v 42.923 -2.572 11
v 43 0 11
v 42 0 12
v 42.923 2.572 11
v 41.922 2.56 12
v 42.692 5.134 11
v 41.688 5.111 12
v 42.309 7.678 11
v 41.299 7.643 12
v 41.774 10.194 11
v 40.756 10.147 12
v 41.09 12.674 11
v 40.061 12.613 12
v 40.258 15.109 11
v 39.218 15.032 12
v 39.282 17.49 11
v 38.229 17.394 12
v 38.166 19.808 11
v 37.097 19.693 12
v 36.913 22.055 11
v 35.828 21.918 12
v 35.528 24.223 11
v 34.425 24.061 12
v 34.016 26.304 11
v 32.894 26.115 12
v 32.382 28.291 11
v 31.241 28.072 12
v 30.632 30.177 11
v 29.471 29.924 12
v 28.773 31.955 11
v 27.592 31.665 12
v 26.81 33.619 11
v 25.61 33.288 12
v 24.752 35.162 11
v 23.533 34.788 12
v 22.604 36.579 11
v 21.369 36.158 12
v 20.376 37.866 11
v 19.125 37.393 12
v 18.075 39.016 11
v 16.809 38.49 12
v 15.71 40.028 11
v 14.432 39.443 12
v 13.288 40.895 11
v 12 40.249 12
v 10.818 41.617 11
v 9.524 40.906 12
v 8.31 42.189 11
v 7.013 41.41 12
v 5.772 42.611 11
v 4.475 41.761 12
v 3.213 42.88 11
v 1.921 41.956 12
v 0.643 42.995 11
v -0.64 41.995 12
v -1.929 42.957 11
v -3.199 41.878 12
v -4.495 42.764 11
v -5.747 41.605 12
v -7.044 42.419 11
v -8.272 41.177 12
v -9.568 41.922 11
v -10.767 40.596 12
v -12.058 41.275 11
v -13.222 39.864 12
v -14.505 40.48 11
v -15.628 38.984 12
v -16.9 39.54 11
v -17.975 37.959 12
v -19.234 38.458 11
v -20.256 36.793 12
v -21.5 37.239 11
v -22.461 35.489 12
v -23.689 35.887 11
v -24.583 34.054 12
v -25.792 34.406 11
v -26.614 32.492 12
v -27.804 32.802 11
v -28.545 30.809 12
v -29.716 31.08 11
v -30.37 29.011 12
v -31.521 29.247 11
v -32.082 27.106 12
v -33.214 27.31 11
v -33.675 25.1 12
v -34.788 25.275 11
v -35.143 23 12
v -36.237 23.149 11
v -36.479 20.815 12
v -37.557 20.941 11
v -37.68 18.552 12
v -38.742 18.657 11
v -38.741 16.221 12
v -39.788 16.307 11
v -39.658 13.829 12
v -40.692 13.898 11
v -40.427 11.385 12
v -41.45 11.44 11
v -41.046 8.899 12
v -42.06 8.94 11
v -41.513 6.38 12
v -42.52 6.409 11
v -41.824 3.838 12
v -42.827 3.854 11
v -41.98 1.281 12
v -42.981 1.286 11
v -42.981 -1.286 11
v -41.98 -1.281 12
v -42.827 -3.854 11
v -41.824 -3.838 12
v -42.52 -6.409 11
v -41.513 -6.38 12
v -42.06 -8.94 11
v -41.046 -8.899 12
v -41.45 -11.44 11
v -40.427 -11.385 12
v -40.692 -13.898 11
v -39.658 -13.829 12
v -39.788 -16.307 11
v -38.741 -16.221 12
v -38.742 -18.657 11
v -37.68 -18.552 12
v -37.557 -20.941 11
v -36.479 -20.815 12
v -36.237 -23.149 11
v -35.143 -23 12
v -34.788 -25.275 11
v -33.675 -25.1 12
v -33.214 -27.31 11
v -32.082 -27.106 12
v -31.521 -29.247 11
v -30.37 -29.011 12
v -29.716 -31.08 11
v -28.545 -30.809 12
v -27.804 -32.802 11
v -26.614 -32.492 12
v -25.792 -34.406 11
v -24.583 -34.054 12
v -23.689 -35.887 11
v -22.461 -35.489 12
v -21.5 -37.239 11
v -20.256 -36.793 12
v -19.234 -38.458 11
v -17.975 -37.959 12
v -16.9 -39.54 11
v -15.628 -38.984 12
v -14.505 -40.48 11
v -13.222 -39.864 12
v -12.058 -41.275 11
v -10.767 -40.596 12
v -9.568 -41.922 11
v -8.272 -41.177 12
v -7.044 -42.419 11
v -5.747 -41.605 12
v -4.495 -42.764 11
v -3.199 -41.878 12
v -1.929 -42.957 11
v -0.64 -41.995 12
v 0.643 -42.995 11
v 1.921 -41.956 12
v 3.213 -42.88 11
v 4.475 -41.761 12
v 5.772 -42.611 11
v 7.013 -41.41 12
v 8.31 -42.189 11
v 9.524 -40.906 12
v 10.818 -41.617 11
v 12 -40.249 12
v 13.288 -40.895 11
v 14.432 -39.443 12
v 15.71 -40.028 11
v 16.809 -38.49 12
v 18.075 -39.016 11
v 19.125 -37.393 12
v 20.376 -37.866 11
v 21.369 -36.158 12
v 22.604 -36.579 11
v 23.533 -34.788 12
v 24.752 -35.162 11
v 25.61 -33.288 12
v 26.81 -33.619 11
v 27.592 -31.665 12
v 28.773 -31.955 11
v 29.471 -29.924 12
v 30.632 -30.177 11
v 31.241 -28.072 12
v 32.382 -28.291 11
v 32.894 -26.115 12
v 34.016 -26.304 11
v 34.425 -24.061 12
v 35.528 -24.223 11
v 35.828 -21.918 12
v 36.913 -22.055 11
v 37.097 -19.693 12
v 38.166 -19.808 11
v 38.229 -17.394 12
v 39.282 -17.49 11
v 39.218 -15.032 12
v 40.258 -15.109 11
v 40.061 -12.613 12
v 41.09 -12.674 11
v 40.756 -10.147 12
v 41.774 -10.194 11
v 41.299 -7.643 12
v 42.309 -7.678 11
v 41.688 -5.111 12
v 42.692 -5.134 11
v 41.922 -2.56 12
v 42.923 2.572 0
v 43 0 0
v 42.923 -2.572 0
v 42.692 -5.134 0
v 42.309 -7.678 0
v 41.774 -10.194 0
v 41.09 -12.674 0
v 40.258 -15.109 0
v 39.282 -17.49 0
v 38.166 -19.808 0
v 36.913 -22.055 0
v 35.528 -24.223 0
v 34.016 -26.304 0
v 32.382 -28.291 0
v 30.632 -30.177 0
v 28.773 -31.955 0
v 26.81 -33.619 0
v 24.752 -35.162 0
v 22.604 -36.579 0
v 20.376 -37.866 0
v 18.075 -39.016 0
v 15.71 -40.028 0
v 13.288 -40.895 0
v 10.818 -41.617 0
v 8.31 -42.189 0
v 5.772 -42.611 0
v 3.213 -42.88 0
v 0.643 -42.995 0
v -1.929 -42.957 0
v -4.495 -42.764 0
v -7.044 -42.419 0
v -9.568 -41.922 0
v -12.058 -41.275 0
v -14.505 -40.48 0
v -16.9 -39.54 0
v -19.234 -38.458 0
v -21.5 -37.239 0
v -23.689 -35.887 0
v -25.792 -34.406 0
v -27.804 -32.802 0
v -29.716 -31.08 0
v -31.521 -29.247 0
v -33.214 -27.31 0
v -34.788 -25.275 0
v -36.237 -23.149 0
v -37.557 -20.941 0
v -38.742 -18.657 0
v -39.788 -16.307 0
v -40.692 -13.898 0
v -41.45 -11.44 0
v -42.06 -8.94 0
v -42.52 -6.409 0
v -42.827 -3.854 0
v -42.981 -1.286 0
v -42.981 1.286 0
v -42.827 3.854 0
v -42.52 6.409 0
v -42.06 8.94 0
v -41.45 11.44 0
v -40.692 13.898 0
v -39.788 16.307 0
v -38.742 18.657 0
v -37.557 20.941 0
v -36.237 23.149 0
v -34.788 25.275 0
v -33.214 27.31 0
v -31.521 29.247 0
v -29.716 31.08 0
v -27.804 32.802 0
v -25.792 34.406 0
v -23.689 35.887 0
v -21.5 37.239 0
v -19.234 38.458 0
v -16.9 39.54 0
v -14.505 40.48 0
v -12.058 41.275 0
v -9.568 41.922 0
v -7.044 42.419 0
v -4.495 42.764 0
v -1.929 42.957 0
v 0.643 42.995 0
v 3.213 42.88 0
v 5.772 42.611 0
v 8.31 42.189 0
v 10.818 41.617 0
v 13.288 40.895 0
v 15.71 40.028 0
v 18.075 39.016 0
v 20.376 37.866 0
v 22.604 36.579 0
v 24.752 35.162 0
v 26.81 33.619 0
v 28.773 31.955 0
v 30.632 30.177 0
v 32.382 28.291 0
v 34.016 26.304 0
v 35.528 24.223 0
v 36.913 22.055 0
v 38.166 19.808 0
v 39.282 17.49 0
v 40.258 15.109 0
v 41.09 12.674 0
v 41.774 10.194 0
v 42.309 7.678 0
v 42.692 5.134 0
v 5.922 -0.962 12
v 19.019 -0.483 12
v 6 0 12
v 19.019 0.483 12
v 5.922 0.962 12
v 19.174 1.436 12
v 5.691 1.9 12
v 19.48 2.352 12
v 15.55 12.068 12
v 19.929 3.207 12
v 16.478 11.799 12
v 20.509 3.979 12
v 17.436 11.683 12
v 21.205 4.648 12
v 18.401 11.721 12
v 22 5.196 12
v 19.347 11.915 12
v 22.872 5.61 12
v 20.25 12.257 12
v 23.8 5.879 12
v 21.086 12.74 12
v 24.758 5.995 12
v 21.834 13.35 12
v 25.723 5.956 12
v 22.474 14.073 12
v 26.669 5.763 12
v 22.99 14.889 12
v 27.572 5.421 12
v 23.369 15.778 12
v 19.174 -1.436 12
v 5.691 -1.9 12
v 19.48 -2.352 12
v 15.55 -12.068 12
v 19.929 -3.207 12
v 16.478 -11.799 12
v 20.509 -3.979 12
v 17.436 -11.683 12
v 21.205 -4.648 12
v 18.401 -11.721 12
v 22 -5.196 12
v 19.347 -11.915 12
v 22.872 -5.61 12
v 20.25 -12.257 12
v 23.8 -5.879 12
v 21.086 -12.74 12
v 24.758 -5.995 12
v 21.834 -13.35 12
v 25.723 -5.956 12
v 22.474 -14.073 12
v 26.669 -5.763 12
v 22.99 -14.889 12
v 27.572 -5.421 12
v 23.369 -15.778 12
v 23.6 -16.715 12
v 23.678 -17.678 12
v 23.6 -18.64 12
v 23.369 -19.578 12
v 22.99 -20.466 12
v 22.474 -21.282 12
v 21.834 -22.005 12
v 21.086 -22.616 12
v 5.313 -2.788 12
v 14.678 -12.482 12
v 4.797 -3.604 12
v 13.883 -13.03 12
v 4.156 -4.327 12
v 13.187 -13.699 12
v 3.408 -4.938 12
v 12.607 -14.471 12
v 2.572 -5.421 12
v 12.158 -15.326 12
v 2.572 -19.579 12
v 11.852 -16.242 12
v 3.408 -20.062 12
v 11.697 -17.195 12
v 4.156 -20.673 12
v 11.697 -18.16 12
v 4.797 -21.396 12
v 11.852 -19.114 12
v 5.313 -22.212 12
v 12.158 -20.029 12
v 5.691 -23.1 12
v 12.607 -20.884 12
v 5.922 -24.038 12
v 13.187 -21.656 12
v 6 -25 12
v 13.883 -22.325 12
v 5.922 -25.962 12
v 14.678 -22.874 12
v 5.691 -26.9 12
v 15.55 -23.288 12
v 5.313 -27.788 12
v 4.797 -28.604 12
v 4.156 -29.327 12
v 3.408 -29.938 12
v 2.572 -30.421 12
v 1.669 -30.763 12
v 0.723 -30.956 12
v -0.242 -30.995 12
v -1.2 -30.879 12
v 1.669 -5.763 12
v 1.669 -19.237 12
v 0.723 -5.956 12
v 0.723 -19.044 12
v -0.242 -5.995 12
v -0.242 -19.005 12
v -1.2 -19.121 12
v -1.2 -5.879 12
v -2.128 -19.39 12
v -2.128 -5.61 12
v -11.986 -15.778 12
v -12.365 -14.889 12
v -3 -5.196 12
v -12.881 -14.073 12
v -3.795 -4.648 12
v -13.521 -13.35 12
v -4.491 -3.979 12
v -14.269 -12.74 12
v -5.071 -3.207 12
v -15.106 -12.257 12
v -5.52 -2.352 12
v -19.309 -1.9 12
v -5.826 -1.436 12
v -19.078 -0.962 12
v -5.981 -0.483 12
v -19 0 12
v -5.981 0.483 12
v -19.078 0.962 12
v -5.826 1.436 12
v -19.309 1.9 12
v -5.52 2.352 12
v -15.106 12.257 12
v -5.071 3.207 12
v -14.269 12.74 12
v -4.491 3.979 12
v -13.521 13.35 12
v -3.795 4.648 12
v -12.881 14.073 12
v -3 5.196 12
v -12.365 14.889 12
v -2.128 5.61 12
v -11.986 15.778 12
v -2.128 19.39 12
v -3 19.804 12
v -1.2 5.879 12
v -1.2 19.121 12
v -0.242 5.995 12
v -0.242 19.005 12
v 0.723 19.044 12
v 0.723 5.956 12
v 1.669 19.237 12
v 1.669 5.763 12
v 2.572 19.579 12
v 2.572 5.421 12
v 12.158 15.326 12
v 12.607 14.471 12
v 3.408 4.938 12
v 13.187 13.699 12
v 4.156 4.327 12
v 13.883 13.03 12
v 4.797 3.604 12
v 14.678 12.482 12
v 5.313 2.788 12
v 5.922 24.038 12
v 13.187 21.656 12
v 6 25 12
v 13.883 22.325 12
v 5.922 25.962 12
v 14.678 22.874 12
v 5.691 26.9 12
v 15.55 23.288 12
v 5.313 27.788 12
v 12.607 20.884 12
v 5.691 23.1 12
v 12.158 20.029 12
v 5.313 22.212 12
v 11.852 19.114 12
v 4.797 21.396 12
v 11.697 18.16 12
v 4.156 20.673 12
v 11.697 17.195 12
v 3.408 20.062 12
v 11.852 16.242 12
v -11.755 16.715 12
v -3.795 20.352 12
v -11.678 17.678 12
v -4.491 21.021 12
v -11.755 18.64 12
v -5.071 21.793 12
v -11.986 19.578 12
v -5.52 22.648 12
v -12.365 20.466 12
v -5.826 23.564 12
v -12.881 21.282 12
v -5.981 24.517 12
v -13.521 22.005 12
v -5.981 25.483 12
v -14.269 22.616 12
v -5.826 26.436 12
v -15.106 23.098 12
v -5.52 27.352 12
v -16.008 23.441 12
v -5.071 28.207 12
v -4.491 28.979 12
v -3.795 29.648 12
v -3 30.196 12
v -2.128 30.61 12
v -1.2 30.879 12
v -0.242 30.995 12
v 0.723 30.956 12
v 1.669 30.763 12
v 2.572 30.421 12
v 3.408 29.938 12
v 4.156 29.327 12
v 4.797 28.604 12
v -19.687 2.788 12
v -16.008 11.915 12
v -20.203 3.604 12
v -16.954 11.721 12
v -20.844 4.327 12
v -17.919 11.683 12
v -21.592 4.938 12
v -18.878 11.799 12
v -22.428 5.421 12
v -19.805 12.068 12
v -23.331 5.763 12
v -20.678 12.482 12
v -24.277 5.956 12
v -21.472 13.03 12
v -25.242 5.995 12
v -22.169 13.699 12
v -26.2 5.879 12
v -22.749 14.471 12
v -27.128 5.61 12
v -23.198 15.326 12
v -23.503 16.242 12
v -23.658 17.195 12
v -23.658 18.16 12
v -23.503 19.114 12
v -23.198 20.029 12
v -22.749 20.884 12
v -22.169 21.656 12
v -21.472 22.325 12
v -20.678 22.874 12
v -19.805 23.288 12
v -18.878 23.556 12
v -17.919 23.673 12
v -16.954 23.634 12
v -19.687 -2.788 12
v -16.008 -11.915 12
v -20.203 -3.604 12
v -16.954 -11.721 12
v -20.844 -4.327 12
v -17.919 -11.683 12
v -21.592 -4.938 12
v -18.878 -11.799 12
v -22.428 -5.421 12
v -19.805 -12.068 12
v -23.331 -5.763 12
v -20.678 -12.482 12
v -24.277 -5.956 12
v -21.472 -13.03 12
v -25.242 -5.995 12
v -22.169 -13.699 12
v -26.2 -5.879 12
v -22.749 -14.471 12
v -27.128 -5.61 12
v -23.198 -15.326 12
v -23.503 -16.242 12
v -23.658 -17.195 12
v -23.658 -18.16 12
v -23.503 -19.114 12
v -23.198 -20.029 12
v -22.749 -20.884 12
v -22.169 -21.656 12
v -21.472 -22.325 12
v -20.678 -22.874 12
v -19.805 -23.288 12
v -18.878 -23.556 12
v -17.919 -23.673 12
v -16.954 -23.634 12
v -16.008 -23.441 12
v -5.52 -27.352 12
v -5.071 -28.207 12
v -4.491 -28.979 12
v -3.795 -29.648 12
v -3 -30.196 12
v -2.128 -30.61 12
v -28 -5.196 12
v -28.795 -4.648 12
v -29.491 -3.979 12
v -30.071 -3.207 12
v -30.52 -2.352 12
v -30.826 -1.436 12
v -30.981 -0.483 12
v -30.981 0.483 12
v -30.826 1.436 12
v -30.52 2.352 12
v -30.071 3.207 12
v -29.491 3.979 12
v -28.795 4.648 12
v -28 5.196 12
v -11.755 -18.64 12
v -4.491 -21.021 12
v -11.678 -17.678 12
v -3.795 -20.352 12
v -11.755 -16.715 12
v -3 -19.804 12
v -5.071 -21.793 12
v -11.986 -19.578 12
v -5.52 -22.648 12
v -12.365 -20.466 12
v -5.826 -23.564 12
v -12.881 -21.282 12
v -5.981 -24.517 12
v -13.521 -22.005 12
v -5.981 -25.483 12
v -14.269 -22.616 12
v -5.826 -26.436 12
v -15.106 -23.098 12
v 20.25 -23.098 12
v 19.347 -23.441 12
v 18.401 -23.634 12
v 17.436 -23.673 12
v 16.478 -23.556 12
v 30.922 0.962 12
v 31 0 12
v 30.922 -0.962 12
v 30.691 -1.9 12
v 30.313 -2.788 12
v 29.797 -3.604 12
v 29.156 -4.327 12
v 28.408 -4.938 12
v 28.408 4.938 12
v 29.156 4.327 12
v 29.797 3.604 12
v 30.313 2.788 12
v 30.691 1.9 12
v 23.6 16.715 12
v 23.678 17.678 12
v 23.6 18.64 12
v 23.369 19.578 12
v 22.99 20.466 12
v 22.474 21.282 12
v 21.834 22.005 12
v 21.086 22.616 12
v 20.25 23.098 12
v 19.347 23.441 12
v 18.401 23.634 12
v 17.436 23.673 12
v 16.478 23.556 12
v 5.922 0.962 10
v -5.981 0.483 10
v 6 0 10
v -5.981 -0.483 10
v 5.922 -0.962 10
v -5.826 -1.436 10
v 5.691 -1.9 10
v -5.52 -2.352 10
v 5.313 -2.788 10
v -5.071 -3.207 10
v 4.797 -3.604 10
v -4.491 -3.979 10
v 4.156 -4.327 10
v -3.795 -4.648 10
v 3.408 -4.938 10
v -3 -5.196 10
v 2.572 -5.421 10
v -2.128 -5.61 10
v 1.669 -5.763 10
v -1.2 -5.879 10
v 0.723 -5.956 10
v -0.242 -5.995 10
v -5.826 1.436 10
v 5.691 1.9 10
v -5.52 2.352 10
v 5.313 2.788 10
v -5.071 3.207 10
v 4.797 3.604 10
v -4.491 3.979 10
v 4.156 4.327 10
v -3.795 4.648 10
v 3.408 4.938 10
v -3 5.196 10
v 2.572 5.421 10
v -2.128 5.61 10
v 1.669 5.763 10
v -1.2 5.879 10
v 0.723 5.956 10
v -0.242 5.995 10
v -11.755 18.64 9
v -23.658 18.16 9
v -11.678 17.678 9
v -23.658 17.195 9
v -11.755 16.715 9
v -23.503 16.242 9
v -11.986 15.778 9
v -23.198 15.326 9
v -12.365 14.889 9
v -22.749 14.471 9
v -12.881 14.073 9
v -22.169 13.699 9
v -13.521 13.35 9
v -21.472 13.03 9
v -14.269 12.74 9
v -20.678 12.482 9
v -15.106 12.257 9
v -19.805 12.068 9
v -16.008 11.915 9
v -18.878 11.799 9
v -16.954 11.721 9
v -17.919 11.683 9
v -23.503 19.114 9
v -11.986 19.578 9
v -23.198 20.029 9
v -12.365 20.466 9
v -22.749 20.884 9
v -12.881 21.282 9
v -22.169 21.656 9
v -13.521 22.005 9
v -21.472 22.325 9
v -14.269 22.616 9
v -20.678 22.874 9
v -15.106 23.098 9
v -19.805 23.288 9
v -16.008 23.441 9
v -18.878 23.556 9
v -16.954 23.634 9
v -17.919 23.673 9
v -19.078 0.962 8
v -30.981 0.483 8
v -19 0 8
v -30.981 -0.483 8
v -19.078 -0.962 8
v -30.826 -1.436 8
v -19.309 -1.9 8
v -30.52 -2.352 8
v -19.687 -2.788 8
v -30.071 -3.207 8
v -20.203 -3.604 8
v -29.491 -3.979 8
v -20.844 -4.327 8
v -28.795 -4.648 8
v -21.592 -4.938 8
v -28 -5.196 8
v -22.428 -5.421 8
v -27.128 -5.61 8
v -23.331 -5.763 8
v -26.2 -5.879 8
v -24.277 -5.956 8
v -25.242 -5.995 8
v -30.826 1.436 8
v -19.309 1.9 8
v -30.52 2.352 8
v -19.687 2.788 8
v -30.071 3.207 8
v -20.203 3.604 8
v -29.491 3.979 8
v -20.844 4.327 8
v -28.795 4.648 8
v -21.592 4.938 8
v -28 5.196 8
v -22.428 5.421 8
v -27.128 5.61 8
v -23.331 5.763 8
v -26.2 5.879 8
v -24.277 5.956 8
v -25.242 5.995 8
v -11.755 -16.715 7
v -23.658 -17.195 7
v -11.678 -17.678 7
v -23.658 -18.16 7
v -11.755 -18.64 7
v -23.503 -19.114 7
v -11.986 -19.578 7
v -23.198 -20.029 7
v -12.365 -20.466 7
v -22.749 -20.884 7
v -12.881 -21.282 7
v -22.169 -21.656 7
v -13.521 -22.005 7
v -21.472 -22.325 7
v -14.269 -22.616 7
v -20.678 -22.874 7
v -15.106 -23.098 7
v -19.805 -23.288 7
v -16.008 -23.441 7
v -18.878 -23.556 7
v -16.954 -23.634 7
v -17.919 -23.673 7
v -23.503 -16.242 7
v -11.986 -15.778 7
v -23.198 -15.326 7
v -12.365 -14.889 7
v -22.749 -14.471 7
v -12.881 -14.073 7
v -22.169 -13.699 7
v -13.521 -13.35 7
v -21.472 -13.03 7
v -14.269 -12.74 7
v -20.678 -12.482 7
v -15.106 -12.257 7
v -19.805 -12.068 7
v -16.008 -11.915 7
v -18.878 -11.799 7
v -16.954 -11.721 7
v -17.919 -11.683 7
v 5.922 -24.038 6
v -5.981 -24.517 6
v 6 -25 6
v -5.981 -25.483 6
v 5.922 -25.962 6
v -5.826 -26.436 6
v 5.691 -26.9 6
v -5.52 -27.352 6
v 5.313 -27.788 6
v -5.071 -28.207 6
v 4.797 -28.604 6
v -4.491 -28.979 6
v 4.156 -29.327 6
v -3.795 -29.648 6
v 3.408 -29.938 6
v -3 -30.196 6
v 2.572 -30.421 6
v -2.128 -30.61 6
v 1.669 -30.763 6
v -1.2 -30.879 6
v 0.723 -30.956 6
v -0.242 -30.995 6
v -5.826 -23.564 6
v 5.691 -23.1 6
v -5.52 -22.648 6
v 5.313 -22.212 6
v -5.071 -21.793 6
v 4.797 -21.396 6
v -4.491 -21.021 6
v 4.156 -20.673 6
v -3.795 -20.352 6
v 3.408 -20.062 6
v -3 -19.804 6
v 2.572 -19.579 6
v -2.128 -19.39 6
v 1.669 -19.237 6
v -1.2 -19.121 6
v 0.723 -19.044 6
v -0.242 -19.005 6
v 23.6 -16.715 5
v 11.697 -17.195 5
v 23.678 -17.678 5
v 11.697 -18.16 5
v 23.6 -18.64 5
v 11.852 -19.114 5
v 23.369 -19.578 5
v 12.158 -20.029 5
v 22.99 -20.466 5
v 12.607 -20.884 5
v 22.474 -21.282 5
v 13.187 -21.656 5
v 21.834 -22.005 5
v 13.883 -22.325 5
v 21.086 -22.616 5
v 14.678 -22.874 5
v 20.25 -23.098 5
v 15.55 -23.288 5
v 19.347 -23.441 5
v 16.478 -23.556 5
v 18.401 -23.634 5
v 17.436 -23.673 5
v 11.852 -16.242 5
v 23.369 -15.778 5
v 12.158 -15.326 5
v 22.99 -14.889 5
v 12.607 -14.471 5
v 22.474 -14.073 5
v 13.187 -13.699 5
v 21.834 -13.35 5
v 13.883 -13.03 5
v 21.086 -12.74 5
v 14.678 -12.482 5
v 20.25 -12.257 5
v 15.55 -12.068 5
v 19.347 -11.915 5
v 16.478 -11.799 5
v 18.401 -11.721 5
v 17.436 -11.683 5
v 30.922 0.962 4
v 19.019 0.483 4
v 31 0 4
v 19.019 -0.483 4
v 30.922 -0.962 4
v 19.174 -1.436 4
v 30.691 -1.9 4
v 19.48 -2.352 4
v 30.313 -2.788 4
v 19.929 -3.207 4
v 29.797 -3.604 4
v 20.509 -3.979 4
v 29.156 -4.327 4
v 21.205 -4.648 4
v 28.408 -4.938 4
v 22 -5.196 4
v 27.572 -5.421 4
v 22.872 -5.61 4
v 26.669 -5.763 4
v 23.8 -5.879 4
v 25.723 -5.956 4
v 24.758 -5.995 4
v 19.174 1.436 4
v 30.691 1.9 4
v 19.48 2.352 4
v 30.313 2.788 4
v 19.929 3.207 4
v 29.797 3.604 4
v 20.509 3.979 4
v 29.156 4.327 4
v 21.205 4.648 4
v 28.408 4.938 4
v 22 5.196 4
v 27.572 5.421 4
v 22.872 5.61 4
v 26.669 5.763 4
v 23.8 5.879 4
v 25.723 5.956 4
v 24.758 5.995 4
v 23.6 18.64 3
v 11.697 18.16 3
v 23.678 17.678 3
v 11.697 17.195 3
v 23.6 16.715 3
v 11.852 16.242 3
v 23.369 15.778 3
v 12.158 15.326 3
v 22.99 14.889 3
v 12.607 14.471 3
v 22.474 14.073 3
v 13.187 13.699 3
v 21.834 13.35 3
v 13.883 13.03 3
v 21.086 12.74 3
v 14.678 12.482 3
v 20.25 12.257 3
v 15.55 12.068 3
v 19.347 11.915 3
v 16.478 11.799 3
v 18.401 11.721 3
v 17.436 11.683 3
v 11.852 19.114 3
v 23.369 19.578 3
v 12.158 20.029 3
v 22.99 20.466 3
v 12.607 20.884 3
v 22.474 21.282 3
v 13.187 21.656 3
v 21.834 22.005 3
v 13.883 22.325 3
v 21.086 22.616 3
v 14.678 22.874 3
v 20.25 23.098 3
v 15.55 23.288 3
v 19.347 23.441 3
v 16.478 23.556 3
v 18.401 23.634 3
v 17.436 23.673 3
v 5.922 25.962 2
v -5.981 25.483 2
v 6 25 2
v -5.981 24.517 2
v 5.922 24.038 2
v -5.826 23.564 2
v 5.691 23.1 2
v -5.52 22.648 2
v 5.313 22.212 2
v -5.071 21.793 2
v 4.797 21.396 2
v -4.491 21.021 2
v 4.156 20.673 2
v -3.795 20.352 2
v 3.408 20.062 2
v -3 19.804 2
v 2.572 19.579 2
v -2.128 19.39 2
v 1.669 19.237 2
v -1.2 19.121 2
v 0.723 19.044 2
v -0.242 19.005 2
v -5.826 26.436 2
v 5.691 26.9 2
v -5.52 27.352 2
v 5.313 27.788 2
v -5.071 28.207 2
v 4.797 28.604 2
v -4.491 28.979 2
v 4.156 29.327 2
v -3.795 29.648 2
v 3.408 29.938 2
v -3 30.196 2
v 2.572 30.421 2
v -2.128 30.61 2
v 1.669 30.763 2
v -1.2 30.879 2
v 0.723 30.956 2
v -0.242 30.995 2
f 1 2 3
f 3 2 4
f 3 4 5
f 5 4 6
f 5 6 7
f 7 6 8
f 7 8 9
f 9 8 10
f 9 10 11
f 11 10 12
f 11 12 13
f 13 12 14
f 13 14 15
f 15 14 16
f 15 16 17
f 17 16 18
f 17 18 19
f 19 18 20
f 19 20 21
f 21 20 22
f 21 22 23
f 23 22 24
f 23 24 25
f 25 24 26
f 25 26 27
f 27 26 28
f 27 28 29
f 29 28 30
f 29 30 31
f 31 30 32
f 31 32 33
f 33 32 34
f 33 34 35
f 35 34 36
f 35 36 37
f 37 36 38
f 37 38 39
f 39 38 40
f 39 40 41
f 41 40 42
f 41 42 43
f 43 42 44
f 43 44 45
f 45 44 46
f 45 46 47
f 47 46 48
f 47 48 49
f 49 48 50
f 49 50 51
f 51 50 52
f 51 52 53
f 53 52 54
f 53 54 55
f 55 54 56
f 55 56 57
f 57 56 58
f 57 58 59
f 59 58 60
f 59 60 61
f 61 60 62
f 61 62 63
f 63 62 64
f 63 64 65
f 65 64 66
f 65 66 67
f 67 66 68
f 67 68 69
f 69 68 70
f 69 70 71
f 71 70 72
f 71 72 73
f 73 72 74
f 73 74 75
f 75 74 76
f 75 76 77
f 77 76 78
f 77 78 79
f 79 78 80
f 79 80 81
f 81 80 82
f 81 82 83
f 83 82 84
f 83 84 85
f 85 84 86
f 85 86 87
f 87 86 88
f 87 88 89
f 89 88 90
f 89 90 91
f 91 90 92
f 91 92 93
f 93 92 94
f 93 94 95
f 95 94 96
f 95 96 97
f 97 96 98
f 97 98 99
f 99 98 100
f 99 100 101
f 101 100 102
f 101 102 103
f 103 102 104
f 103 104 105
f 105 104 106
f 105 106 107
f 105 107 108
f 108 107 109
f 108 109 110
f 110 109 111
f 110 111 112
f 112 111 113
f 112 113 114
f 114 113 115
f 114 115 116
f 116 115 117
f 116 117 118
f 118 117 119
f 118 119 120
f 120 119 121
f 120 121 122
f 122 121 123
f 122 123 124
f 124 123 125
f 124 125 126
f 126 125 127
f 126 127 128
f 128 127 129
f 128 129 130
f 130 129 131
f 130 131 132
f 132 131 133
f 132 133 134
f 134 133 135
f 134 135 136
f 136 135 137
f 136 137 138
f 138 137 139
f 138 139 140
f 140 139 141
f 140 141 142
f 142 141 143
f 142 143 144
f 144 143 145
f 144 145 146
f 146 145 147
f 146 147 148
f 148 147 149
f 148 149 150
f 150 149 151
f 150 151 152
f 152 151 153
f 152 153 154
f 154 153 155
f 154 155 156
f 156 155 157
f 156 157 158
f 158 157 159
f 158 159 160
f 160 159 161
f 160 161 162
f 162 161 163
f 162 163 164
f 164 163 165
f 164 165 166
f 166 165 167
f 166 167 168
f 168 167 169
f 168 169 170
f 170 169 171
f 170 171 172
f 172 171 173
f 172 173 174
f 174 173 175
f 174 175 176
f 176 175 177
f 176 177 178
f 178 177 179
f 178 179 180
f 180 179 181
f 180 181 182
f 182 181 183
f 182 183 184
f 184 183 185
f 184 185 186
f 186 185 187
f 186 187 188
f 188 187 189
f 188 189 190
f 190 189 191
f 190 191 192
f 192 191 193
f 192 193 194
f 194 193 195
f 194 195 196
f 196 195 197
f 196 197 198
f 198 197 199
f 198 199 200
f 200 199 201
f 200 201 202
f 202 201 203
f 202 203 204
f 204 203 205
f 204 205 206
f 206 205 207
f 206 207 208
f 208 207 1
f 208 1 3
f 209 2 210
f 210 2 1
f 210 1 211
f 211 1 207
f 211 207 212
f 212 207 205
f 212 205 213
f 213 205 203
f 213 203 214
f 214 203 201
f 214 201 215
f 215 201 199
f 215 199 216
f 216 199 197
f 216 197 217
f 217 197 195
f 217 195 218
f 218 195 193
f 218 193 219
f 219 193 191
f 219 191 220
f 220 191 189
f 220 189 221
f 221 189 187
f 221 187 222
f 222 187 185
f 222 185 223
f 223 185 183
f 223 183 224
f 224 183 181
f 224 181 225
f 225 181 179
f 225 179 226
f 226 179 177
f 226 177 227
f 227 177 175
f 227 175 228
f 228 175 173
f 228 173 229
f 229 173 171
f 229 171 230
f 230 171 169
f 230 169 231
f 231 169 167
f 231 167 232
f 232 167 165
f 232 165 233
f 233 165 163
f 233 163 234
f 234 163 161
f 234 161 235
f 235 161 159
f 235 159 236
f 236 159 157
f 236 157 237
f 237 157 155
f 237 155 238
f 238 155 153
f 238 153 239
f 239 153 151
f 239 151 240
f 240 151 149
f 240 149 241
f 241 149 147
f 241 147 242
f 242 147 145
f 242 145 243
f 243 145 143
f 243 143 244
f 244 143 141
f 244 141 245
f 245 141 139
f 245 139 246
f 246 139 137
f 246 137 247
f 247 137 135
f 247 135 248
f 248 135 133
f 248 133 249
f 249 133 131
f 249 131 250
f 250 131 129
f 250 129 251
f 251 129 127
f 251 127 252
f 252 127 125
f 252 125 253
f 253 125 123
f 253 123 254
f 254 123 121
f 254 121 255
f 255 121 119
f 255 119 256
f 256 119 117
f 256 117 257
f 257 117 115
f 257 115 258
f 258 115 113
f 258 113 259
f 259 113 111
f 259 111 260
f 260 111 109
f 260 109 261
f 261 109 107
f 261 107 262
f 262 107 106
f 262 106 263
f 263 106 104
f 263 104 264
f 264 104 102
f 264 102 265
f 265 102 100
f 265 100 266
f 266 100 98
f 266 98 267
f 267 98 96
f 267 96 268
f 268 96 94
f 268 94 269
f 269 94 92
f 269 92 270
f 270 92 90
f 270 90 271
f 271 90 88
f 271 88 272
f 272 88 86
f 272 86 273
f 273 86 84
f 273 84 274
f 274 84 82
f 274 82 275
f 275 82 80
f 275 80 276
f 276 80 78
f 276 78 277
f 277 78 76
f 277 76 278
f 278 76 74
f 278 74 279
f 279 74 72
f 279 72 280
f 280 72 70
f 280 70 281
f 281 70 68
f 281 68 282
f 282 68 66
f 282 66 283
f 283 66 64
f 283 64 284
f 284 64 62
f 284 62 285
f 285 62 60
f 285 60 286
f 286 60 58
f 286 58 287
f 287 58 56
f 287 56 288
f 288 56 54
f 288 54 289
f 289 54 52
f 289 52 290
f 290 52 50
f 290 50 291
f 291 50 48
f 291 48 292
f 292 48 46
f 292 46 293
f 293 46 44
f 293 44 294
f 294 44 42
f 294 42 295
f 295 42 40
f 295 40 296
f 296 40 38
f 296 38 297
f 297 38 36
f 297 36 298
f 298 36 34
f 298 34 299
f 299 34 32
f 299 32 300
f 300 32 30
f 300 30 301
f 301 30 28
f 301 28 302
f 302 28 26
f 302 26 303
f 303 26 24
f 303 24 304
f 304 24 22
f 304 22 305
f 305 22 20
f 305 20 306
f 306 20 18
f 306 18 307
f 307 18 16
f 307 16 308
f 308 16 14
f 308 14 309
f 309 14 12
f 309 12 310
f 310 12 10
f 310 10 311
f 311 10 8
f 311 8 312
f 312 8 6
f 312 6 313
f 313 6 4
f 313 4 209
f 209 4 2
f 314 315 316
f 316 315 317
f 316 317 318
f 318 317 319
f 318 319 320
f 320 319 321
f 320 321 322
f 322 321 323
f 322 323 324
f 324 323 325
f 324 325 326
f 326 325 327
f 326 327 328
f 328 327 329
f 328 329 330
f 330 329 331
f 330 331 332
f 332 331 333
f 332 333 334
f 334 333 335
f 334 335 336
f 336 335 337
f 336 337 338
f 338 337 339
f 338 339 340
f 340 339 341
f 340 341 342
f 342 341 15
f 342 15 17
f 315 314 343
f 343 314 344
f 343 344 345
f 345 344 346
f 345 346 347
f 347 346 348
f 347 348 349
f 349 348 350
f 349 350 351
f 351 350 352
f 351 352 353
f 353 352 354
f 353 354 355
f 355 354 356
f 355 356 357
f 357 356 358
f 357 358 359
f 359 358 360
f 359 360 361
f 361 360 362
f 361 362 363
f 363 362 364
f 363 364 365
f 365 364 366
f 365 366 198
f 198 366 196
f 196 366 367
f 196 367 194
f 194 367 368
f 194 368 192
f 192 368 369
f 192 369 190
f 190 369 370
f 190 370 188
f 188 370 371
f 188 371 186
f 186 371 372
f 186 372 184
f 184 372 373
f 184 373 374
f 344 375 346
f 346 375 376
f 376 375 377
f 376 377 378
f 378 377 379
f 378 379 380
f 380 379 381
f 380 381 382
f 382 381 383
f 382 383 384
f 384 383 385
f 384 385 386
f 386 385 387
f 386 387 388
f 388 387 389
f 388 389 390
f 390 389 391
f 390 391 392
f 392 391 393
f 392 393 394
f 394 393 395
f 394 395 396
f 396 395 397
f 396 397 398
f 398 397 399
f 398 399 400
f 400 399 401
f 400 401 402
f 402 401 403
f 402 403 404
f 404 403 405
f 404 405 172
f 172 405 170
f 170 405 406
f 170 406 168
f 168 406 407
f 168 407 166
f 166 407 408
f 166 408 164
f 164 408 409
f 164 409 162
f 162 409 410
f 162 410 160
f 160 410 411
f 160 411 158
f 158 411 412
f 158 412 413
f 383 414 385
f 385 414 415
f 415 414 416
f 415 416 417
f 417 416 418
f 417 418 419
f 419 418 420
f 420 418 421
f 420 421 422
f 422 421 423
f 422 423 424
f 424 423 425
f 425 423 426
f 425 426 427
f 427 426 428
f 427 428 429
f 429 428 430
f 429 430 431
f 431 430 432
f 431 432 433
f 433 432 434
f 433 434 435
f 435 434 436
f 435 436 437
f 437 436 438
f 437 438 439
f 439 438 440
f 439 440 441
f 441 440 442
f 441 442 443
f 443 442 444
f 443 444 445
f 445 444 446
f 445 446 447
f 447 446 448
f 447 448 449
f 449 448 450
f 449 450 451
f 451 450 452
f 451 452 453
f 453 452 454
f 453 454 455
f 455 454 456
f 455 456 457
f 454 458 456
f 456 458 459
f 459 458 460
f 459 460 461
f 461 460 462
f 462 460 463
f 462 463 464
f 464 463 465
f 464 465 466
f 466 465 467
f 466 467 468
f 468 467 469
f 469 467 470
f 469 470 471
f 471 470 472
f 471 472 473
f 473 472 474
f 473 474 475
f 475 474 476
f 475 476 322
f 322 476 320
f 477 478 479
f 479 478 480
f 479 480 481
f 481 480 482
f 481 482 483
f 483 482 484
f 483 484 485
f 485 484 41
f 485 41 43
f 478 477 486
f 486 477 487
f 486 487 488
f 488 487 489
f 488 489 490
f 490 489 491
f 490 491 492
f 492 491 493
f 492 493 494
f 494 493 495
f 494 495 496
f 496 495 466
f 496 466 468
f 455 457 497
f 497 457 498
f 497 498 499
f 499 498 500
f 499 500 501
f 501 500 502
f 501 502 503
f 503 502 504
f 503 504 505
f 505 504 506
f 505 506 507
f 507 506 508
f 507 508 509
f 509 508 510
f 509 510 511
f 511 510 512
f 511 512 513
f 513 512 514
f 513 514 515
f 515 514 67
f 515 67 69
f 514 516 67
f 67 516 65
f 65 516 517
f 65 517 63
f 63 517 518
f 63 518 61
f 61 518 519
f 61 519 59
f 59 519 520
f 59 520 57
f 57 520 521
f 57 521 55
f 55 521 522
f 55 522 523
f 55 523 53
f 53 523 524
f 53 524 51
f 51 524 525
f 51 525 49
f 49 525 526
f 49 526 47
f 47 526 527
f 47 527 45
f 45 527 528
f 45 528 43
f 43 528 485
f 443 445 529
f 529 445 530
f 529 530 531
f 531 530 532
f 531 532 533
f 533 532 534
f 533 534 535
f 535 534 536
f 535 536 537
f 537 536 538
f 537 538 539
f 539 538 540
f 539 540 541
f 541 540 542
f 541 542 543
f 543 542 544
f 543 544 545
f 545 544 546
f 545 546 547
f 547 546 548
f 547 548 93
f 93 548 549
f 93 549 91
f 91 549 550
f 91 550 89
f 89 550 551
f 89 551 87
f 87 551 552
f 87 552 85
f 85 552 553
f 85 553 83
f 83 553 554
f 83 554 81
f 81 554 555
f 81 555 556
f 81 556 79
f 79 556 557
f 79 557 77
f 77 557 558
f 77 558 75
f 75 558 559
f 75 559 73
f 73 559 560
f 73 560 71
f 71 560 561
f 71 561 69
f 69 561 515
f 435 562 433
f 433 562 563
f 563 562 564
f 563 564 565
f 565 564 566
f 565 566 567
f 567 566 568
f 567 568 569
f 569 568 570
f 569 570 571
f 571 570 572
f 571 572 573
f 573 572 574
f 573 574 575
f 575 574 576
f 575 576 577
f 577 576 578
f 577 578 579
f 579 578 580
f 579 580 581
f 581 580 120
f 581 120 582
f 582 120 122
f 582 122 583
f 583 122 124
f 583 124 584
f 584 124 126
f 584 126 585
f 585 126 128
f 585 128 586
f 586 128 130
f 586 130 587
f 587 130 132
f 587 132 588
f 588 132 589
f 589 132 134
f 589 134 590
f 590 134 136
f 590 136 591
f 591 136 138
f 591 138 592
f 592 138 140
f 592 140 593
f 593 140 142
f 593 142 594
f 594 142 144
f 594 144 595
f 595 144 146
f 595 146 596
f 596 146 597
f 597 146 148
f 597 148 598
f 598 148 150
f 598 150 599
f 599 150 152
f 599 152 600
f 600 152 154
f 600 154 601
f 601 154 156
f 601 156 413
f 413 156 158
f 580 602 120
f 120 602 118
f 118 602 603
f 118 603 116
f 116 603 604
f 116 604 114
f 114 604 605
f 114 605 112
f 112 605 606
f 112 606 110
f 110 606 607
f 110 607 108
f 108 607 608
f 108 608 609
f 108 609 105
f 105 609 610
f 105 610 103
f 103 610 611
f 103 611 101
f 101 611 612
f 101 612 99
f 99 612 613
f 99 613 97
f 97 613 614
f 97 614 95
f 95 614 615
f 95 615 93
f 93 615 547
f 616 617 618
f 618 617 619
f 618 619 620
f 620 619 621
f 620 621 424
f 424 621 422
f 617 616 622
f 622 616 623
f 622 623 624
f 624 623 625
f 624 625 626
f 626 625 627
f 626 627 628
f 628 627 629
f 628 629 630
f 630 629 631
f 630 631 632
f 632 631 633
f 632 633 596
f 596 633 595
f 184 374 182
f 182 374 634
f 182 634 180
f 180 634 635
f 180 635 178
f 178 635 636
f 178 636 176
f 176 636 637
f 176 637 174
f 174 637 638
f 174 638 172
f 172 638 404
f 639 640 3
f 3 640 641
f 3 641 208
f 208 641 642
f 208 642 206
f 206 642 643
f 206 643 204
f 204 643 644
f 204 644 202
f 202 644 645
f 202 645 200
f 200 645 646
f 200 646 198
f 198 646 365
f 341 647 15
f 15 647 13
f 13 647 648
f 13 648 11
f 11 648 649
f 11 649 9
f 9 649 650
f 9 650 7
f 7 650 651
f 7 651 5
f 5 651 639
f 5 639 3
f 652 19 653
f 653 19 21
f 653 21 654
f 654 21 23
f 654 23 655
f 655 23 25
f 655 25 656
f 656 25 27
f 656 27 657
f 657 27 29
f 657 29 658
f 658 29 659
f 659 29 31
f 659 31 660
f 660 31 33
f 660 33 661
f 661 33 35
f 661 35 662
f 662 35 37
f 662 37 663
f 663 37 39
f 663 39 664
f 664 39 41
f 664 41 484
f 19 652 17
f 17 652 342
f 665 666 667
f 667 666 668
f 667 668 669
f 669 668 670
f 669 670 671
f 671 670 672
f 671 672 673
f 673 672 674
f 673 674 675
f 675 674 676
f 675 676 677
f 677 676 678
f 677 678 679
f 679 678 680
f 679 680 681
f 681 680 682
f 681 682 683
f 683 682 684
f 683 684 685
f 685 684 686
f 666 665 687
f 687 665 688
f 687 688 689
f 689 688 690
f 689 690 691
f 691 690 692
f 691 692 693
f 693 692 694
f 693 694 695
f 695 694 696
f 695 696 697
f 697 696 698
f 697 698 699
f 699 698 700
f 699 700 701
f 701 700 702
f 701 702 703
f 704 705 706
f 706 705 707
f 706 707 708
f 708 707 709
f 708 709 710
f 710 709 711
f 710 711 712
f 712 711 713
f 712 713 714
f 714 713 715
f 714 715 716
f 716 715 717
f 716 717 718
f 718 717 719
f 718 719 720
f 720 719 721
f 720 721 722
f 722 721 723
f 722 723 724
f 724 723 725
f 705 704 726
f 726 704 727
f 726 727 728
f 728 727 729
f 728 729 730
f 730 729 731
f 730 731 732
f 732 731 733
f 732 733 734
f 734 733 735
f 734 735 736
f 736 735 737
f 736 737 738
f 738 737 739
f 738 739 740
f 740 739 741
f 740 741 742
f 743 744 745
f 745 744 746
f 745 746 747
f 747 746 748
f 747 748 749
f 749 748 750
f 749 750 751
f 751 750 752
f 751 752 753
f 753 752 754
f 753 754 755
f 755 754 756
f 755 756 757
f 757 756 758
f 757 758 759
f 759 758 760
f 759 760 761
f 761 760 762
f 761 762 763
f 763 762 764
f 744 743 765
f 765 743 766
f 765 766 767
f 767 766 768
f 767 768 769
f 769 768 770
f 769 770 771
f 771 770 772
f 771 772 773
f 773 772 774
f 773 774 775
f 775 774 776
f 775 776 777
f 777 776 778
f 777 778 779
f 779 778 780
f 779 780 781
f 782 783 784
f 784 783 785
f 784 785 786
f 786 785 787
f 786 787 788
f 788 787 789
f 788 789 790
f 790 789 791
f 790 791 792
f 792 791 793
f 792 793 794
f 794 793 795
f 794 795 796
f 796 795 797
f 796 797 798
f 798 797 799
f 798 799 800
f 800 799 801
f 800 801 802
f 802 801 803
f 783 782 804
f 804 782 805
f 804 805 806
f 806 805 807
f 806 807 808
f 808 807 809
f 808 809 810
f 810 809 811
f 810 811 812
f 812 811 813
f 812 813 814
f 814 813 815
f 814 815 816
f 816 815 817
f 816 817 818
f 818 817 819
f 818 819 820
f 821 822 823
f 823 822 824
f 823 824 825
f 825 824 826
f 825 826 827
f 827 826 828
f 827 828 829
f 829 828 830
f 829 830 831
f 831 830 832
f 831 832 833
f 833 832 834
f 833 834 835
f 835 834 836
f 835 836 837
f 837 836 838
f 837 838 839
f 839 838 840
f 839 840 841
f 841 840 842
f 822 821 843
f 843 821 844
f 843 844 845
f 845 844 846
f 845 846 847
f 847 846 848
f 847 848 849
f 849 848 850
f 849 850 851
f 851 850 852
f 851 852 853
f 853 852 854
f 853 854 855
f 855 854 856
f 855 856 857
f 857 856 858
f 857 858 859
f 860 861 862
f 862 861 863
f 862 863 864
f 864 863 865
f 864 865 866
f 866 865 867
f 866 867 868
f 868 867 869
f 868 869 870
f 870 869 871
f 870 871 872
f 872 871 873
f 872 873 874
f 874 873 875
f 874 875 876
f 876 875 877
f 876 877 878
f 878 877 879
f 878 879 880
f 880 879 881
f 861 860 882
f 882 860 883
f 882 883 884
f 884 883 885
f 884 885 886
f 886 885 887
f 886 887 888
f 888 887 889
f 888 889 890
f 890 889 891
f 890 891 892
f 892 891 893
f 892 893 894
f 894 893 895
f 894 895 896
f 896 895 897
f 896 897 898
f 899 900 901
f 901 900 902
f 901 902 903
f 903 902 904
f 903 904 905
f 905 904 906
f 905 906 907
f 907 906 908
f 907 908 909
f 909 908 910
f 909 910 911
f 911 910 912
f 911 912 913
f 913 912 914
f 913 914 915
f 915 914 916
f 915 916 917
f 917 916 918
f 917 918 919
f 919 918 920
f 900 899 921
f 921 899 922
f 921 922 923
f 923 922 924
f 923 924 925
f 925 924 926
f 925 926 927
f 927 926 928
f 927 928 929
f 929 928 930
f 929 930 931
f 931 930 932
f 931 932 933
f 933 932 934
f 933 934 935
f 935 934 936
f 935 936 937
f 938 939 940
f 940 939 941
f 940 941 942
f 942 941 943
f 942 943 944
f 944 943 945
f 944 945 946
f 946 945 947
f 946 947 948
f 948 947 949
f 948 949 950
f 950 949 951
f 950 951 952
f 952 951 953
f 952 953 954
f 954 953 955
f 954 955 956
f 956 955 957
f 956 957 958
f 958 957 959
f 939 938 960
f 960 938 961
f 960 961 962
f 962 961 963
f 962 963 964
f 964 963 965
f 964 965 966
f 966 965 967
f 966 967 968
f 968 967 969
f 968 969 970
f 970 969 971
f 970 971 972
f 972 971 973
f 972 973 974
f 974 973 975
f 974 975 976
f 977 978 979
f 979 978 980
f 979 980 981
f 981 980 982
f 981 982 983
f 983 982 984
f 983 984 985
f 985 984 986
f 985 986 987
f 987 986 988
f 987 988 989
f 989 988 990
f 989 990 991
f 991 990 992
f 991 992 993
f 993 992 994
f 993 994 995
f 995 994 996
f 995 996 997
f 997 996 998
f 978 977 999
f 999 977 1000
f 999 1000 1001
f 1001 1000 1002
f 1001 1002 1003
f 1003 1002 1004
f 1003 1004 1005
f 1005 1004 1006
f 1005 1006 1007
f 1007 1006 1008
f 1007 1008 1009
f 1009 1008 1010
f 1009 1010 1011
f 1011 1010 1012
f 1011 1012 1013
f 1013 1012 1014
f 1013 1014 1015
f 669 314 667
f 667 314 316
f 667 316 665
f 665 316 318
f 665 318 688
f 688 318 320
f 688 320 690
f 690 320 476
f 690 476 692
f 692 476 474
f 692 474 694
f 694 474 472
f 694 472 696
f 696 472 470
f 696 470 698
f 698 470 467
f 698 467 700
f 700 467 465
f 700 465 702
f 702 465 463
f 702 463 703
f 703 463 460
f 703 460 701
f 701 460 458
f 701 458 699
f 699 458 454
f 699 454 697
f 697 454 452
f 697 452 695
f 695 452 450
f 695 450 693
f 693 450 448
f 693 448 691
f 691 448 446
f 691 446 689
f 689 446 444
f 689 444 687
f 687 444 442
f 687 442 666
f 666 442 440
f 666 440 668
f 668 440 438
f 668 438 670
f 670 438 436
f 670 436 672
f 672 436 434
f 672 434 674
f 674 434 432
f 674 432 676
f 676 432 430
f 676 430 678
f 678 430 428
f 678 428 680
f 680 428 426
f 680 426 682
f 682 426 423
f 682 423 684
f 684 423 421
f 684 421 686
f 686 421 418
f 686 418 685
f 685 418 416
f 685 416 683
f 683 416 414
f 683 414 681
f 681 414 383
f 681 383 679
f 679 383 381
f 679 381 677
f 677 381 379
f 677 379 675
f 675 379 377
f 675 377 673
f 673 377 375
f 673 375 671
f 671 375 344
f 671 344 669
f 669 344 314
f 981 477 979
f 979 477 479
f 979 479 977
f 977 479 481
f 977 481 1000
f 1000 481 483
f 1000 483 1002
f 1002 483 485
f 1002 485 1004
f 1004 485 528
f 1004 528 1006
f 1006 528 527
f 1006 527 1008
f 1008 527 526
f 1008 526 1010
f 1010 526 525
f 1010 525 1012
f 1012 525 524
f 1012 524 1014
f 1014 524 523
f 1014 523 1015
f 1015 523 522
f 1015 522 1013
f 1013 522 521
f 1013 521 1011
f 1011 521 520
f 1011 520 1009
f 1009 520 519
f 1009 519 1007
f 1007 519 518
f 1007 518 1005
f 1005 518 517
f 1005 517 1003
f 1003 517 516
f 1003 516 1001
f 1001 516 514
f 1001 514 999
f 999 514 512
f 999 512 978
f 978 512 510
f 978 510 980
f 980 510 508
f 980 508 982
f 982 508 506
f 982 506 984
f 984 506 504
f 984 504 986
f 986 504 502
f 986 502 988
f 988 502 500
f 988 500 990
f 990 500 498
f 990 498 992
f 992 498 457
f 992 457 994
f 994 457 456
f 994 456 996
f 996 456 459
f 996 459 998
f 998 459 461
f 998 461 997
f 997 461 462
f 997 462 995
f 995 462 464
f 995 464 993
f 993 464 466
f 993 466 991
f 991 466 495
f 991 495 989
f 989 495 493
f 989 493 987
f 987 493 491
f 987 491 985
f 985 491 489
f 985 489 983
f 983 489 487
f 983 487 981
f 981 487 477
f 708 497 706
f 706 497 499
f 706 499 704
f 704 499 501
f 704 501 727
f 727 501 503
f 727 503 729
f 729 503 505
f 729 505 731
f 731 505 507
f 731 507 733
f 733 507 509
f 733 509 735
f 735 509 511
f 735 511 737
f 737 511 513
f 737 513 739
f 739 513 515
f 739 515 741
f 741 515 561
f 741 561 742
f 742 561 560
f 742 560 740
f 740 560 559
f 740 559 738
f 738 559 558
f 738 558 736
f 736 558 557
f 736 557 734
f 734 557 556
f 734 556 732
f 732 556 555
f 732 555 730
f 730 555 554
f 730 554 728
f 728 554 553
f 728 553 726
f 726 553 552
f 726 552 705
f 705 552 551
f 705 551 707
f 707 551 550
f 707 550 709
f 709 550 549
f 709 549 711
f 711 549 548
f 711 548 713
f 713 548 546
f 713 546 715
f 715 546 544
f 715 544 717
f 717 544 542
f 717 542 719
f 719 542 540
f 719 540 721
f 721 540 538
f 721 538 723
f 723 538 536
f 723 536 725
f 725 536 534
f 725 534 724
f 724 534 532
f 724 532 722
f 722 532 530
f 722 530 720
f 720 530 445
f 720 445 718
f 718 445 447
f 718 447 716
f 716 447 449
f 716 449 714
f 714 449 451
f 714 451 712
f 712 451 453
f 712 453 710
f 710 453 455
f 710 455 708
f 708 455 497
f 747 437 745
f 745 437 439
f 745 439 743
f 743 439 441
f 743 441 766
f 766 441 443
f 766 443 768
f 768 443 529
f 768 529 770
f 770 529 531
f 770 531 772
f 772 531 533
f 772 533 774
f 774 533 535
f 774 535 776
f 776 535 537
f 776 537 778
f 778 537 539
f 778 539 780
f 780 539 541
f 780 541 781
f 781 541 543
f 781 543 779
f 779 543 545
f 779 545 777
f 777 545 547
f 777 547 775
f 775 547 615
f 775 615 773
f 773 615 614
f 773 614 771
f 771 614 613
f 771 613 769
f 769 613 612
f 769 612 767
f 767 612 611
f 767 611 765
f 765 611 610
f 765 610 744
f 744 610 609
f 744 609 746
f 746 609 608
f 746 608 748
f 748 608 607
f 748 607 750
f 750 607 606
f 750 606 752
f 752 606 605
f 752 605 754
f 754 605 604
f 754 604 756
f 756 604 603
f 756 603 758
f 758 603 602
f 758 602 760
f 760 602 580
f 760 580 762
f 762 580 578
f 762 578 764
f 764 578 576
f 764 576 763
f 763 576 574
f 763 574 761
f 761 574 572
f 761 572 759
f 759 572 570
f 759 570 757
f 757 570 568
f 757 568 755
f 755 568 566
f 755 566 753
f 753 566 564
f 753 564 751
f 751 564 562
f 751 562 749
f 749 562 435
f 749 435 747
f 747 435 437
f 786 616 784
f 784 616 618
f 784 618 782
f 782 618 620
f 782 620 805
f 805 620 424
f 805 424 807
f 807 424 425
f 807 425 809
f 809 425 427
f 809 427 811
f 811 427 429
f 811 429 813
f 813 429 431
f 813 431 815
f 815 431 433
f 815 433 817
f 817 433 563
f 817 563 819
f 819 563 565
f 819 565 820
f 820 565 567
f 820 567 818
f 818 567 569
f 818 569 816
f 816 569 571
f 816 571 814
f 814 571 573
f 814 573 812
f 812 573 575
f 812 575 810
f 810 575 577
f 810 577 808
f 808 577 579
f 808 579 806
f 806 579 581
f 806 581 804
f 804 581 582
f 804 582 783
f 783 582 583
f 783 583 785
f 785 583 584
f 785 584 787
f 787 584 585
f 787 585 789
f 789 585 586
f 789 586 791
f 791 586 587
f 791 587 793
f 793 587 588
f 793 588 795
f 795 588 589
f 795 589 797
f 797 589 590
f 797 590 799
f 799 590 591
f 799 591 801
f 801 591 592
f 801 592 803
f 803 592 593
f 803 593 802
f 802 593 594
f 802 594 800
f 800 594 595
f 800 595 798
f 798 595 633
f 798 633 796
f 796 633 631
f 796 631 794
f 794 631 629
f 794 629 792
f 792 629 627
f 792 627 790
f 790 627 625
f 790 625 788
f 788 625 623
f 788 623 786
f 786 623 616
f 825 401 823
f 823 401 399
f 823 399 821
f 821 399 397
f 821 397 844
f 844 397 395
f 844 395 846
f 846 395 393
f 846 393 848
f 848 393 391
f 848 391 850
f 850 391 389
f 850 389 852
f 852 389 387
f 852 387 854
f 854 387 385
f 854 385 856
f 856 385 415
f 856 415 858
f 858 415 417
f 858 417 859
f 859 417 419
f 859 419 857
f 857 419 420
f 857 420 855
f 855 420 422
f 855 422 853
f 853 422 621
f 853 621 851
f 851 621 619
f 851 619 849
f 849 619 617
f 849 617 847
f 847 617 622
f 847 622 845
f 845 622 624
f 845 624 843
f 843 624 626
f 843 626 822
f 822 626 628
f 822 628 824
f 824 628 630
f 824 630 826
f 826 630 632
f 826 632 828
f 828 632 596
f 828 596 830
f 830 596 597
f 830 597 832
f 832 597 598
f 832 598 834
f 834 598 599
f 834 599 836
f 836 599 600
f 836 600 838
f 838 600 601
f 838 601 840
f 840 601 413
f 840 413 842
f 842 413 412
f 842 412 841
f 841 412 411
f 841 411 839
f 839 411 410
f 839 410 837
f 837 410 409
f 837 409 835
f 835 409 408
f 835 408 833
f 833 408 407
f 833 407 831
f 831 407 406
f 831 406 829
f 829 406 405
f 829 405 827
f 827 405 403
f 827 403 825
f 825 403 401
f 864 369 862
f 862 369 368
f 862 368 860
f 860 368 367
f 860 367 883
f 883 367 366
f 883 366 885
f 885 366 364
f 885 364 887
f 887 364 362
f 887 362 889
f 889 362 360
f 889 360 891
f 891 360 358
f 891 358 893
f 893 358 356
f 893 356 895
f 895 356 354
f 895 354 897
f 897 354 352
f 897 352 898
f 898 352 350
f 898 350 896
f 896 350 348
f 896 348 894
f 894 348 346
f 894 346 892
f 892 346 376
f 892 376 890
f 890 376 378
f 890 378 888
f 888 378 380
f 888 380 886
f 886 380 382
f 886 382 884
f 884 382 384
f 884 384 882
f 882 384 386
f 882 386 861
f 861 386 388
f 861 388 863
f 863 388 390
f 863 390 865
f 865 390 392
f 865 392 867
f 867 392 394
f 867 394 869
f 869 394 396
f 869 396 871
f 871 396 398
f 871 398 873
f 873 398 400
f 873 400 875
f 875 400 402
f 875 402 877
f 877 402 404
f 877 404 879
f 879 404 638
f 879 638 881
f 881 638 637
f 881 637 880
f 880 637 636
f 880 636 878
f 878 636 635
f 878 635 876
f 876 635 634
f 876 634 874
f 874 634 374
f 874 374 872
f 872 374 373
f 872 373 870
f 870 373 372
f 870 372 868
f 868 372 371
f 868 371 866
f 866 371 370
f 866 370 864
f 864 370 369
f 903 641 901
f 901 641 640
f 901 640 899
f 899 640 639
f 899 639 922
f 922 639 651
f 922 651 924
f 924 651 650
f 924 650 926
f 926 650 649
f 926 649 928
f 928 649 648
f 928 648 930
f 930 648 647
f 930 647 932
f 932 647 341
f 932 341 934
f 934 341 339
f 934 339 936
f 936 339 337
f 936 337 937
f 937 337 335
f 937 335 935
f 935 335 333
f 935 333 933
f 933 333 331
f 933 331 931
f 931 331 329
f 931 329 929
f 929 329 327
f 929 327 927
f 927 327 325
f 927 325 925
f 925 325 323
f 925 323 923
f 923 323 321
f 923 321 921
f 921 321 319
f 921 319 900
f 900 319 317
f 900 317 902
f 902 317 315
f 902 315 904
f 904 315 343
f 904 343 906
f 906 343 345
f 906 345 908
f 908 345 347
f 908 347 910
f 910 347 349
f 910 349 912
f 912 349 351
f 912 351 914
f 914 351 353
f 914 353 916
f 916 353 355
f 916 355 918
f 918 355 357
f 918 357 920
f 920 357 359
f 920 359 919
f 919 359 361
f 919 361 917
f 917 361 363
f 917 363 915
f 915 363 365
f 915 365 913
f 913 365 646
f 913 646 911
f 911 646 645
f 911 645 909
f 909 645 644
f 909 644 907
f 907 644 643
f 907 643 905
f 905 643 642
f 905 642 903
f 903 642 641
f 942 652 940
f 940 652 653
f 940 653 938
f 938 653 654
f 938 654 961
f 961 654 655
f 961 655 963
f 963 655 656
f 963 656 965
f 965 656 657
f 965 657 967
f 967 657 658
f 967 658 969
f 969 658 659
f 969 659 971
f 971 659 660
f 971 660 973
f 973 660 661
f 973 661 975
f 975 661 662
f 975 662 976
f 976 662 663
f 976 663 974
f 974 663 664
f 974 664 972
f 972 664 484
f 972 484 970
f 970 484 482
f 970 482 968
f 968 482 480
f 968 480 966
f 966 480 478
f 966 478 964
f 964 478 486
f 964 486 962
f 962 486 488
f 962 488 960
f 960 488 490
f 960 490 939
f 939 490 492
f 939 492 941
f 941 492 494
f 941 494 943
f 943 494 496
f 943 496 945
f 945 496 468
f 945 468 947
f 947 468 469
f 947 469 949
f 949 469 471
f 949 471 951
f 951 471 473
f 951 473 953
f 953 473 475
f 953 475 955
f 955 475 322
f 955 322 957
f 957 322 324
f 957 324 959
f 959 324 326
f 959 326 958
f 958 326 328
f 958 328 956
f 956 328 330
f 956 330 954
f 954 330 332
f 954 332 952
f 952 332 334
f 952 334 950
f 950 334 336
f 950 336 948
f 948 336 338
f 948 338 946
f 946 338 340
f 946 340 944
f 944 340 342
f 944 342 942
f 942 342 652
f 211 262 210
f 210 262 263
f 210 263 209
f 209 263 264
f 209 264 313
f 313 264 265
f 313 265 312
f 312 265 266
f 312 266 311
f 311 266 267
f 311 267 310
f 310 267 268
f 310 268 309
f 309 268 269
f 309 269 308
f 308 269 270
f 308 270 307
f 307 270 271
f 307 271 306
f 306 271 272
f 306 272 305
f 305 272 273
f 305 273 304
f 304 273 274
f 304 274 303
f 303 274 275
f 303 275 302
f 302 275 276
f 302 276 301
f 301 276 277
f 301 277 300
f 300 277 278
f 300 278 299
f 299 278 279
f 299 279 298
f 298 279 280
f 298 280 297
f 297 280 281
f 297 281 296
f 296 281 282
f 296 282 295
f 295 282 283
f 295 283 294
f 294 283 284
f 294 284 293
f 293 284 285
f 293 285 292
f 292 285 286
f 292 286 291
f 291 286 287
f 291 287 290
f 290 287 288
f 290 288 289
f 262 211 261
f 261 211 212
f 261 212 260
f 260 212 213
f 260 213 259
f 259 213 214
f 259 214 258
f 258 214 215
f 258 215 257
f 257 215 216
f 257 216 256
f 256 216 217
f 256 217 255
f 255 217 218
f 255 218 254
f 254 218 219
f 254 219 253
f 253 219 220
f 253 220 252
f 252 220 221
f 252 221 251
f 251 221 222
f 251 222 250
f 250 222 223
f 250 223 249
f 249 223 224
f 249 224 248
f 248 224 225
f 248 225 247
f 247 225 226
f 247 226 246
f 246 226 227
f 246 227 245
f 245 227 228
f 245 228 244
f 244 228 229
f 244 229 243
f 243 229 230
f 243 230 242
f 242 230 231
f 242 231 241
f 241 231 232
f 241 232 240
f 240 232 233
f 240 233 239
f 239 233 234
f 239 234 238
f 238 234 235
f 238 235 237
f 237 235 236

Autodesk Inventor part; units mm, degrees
ref_plane "YZ Plane" through (0, 0, 0) normal (1, 0, 0) x (0, 1, 0)
ref_plane "XZ Plane" through (0, 0, 0) normal (0, 1, 0) x (-1, 0, 0)
ref_plane "XY Plane" through (0, 0, 0) normal (0, 0, 1) x (1, 0, 0)
sketch "Sketch1" plane through (0, 0, 0) normal (0, 0, 1) x (1, 0, 0)
  circle A0 centre (0, 0) radius 43
  circle A1 centre (0, 0) radius 6
  circle A2 centre (0, 25) radius 6
  circle A3 centre (-17.6777, 17.6777) radius 6
  circle A4 centre (-25, 0) radius 6
  circle A5 centre (-17.6777, -17.6777) radius 6
  circle A6 centre (0, -25) radius 6
  circle A7 centre (17.6777, -17.6777) radius 6
  circle A8 centre (25, 0) radius 6
  circle A9 centre (17.6777, 17.6777) radius 6
  dimension "diameter" = 12
  dimension "d2" = 12
  dimension "d5" = 360
  dimension "d7" = 25
  dimension "d28" = 86
extrude "Extrusion1" add sketch "Sketch1" along normal blind 12
extrude "Extrusion2" add sketch "Sketch1" along normal blind 2 contours A2
extrude "Extrusion3" add sketch "Sketch1" along normal blind 3 contours A9
extrude "Extrusion4" add sketch "Sketch1" along normal blind 4 contours A8
extrude "Extrusion5" add sketch "Sketch1" along normal blind 5 contours A7
extrude "Extrusion6" add sketch "Sketch1" along normal blind 6 contours A6
extrude "Extrusion7" add sketch "Sketch1" along normal blind 7 contours A5
extrude "Extrusion8" add sketch "Sketch1" along normal blind 8 contours A4
extrude "Extrusion9" add sketch "Sketch1" along normal blind 9 contours A3
extrude "Extrusion10" add sketch "Sketch1" along normal blind 10 contours A1
sketch "Sketch2" plane through (0, 0, 12) normal (0, 0, 1) x (1, 0, 0)
  line L0 (-5.8774, 39.105) -> (5.7366, 39.105) construction
  line L1 (5.7366, 39.105) -> (5.7366, 35.936) construction
  line L2 (5.7366, 35.936) -> (-5.8774, 35.936) construction
  line L3 (-5.8774, 35.936) -> (-5.8774, 39.105) construction
  point P0 (0, 0)
emboss "Emboss1" [suppressed]
chamfer "Chamfer1" distance 1 angle 45 1 edges at (-43, 0, 12)
equation "\"d2\" = diameter"
properties part number "Diameter_12mm"
